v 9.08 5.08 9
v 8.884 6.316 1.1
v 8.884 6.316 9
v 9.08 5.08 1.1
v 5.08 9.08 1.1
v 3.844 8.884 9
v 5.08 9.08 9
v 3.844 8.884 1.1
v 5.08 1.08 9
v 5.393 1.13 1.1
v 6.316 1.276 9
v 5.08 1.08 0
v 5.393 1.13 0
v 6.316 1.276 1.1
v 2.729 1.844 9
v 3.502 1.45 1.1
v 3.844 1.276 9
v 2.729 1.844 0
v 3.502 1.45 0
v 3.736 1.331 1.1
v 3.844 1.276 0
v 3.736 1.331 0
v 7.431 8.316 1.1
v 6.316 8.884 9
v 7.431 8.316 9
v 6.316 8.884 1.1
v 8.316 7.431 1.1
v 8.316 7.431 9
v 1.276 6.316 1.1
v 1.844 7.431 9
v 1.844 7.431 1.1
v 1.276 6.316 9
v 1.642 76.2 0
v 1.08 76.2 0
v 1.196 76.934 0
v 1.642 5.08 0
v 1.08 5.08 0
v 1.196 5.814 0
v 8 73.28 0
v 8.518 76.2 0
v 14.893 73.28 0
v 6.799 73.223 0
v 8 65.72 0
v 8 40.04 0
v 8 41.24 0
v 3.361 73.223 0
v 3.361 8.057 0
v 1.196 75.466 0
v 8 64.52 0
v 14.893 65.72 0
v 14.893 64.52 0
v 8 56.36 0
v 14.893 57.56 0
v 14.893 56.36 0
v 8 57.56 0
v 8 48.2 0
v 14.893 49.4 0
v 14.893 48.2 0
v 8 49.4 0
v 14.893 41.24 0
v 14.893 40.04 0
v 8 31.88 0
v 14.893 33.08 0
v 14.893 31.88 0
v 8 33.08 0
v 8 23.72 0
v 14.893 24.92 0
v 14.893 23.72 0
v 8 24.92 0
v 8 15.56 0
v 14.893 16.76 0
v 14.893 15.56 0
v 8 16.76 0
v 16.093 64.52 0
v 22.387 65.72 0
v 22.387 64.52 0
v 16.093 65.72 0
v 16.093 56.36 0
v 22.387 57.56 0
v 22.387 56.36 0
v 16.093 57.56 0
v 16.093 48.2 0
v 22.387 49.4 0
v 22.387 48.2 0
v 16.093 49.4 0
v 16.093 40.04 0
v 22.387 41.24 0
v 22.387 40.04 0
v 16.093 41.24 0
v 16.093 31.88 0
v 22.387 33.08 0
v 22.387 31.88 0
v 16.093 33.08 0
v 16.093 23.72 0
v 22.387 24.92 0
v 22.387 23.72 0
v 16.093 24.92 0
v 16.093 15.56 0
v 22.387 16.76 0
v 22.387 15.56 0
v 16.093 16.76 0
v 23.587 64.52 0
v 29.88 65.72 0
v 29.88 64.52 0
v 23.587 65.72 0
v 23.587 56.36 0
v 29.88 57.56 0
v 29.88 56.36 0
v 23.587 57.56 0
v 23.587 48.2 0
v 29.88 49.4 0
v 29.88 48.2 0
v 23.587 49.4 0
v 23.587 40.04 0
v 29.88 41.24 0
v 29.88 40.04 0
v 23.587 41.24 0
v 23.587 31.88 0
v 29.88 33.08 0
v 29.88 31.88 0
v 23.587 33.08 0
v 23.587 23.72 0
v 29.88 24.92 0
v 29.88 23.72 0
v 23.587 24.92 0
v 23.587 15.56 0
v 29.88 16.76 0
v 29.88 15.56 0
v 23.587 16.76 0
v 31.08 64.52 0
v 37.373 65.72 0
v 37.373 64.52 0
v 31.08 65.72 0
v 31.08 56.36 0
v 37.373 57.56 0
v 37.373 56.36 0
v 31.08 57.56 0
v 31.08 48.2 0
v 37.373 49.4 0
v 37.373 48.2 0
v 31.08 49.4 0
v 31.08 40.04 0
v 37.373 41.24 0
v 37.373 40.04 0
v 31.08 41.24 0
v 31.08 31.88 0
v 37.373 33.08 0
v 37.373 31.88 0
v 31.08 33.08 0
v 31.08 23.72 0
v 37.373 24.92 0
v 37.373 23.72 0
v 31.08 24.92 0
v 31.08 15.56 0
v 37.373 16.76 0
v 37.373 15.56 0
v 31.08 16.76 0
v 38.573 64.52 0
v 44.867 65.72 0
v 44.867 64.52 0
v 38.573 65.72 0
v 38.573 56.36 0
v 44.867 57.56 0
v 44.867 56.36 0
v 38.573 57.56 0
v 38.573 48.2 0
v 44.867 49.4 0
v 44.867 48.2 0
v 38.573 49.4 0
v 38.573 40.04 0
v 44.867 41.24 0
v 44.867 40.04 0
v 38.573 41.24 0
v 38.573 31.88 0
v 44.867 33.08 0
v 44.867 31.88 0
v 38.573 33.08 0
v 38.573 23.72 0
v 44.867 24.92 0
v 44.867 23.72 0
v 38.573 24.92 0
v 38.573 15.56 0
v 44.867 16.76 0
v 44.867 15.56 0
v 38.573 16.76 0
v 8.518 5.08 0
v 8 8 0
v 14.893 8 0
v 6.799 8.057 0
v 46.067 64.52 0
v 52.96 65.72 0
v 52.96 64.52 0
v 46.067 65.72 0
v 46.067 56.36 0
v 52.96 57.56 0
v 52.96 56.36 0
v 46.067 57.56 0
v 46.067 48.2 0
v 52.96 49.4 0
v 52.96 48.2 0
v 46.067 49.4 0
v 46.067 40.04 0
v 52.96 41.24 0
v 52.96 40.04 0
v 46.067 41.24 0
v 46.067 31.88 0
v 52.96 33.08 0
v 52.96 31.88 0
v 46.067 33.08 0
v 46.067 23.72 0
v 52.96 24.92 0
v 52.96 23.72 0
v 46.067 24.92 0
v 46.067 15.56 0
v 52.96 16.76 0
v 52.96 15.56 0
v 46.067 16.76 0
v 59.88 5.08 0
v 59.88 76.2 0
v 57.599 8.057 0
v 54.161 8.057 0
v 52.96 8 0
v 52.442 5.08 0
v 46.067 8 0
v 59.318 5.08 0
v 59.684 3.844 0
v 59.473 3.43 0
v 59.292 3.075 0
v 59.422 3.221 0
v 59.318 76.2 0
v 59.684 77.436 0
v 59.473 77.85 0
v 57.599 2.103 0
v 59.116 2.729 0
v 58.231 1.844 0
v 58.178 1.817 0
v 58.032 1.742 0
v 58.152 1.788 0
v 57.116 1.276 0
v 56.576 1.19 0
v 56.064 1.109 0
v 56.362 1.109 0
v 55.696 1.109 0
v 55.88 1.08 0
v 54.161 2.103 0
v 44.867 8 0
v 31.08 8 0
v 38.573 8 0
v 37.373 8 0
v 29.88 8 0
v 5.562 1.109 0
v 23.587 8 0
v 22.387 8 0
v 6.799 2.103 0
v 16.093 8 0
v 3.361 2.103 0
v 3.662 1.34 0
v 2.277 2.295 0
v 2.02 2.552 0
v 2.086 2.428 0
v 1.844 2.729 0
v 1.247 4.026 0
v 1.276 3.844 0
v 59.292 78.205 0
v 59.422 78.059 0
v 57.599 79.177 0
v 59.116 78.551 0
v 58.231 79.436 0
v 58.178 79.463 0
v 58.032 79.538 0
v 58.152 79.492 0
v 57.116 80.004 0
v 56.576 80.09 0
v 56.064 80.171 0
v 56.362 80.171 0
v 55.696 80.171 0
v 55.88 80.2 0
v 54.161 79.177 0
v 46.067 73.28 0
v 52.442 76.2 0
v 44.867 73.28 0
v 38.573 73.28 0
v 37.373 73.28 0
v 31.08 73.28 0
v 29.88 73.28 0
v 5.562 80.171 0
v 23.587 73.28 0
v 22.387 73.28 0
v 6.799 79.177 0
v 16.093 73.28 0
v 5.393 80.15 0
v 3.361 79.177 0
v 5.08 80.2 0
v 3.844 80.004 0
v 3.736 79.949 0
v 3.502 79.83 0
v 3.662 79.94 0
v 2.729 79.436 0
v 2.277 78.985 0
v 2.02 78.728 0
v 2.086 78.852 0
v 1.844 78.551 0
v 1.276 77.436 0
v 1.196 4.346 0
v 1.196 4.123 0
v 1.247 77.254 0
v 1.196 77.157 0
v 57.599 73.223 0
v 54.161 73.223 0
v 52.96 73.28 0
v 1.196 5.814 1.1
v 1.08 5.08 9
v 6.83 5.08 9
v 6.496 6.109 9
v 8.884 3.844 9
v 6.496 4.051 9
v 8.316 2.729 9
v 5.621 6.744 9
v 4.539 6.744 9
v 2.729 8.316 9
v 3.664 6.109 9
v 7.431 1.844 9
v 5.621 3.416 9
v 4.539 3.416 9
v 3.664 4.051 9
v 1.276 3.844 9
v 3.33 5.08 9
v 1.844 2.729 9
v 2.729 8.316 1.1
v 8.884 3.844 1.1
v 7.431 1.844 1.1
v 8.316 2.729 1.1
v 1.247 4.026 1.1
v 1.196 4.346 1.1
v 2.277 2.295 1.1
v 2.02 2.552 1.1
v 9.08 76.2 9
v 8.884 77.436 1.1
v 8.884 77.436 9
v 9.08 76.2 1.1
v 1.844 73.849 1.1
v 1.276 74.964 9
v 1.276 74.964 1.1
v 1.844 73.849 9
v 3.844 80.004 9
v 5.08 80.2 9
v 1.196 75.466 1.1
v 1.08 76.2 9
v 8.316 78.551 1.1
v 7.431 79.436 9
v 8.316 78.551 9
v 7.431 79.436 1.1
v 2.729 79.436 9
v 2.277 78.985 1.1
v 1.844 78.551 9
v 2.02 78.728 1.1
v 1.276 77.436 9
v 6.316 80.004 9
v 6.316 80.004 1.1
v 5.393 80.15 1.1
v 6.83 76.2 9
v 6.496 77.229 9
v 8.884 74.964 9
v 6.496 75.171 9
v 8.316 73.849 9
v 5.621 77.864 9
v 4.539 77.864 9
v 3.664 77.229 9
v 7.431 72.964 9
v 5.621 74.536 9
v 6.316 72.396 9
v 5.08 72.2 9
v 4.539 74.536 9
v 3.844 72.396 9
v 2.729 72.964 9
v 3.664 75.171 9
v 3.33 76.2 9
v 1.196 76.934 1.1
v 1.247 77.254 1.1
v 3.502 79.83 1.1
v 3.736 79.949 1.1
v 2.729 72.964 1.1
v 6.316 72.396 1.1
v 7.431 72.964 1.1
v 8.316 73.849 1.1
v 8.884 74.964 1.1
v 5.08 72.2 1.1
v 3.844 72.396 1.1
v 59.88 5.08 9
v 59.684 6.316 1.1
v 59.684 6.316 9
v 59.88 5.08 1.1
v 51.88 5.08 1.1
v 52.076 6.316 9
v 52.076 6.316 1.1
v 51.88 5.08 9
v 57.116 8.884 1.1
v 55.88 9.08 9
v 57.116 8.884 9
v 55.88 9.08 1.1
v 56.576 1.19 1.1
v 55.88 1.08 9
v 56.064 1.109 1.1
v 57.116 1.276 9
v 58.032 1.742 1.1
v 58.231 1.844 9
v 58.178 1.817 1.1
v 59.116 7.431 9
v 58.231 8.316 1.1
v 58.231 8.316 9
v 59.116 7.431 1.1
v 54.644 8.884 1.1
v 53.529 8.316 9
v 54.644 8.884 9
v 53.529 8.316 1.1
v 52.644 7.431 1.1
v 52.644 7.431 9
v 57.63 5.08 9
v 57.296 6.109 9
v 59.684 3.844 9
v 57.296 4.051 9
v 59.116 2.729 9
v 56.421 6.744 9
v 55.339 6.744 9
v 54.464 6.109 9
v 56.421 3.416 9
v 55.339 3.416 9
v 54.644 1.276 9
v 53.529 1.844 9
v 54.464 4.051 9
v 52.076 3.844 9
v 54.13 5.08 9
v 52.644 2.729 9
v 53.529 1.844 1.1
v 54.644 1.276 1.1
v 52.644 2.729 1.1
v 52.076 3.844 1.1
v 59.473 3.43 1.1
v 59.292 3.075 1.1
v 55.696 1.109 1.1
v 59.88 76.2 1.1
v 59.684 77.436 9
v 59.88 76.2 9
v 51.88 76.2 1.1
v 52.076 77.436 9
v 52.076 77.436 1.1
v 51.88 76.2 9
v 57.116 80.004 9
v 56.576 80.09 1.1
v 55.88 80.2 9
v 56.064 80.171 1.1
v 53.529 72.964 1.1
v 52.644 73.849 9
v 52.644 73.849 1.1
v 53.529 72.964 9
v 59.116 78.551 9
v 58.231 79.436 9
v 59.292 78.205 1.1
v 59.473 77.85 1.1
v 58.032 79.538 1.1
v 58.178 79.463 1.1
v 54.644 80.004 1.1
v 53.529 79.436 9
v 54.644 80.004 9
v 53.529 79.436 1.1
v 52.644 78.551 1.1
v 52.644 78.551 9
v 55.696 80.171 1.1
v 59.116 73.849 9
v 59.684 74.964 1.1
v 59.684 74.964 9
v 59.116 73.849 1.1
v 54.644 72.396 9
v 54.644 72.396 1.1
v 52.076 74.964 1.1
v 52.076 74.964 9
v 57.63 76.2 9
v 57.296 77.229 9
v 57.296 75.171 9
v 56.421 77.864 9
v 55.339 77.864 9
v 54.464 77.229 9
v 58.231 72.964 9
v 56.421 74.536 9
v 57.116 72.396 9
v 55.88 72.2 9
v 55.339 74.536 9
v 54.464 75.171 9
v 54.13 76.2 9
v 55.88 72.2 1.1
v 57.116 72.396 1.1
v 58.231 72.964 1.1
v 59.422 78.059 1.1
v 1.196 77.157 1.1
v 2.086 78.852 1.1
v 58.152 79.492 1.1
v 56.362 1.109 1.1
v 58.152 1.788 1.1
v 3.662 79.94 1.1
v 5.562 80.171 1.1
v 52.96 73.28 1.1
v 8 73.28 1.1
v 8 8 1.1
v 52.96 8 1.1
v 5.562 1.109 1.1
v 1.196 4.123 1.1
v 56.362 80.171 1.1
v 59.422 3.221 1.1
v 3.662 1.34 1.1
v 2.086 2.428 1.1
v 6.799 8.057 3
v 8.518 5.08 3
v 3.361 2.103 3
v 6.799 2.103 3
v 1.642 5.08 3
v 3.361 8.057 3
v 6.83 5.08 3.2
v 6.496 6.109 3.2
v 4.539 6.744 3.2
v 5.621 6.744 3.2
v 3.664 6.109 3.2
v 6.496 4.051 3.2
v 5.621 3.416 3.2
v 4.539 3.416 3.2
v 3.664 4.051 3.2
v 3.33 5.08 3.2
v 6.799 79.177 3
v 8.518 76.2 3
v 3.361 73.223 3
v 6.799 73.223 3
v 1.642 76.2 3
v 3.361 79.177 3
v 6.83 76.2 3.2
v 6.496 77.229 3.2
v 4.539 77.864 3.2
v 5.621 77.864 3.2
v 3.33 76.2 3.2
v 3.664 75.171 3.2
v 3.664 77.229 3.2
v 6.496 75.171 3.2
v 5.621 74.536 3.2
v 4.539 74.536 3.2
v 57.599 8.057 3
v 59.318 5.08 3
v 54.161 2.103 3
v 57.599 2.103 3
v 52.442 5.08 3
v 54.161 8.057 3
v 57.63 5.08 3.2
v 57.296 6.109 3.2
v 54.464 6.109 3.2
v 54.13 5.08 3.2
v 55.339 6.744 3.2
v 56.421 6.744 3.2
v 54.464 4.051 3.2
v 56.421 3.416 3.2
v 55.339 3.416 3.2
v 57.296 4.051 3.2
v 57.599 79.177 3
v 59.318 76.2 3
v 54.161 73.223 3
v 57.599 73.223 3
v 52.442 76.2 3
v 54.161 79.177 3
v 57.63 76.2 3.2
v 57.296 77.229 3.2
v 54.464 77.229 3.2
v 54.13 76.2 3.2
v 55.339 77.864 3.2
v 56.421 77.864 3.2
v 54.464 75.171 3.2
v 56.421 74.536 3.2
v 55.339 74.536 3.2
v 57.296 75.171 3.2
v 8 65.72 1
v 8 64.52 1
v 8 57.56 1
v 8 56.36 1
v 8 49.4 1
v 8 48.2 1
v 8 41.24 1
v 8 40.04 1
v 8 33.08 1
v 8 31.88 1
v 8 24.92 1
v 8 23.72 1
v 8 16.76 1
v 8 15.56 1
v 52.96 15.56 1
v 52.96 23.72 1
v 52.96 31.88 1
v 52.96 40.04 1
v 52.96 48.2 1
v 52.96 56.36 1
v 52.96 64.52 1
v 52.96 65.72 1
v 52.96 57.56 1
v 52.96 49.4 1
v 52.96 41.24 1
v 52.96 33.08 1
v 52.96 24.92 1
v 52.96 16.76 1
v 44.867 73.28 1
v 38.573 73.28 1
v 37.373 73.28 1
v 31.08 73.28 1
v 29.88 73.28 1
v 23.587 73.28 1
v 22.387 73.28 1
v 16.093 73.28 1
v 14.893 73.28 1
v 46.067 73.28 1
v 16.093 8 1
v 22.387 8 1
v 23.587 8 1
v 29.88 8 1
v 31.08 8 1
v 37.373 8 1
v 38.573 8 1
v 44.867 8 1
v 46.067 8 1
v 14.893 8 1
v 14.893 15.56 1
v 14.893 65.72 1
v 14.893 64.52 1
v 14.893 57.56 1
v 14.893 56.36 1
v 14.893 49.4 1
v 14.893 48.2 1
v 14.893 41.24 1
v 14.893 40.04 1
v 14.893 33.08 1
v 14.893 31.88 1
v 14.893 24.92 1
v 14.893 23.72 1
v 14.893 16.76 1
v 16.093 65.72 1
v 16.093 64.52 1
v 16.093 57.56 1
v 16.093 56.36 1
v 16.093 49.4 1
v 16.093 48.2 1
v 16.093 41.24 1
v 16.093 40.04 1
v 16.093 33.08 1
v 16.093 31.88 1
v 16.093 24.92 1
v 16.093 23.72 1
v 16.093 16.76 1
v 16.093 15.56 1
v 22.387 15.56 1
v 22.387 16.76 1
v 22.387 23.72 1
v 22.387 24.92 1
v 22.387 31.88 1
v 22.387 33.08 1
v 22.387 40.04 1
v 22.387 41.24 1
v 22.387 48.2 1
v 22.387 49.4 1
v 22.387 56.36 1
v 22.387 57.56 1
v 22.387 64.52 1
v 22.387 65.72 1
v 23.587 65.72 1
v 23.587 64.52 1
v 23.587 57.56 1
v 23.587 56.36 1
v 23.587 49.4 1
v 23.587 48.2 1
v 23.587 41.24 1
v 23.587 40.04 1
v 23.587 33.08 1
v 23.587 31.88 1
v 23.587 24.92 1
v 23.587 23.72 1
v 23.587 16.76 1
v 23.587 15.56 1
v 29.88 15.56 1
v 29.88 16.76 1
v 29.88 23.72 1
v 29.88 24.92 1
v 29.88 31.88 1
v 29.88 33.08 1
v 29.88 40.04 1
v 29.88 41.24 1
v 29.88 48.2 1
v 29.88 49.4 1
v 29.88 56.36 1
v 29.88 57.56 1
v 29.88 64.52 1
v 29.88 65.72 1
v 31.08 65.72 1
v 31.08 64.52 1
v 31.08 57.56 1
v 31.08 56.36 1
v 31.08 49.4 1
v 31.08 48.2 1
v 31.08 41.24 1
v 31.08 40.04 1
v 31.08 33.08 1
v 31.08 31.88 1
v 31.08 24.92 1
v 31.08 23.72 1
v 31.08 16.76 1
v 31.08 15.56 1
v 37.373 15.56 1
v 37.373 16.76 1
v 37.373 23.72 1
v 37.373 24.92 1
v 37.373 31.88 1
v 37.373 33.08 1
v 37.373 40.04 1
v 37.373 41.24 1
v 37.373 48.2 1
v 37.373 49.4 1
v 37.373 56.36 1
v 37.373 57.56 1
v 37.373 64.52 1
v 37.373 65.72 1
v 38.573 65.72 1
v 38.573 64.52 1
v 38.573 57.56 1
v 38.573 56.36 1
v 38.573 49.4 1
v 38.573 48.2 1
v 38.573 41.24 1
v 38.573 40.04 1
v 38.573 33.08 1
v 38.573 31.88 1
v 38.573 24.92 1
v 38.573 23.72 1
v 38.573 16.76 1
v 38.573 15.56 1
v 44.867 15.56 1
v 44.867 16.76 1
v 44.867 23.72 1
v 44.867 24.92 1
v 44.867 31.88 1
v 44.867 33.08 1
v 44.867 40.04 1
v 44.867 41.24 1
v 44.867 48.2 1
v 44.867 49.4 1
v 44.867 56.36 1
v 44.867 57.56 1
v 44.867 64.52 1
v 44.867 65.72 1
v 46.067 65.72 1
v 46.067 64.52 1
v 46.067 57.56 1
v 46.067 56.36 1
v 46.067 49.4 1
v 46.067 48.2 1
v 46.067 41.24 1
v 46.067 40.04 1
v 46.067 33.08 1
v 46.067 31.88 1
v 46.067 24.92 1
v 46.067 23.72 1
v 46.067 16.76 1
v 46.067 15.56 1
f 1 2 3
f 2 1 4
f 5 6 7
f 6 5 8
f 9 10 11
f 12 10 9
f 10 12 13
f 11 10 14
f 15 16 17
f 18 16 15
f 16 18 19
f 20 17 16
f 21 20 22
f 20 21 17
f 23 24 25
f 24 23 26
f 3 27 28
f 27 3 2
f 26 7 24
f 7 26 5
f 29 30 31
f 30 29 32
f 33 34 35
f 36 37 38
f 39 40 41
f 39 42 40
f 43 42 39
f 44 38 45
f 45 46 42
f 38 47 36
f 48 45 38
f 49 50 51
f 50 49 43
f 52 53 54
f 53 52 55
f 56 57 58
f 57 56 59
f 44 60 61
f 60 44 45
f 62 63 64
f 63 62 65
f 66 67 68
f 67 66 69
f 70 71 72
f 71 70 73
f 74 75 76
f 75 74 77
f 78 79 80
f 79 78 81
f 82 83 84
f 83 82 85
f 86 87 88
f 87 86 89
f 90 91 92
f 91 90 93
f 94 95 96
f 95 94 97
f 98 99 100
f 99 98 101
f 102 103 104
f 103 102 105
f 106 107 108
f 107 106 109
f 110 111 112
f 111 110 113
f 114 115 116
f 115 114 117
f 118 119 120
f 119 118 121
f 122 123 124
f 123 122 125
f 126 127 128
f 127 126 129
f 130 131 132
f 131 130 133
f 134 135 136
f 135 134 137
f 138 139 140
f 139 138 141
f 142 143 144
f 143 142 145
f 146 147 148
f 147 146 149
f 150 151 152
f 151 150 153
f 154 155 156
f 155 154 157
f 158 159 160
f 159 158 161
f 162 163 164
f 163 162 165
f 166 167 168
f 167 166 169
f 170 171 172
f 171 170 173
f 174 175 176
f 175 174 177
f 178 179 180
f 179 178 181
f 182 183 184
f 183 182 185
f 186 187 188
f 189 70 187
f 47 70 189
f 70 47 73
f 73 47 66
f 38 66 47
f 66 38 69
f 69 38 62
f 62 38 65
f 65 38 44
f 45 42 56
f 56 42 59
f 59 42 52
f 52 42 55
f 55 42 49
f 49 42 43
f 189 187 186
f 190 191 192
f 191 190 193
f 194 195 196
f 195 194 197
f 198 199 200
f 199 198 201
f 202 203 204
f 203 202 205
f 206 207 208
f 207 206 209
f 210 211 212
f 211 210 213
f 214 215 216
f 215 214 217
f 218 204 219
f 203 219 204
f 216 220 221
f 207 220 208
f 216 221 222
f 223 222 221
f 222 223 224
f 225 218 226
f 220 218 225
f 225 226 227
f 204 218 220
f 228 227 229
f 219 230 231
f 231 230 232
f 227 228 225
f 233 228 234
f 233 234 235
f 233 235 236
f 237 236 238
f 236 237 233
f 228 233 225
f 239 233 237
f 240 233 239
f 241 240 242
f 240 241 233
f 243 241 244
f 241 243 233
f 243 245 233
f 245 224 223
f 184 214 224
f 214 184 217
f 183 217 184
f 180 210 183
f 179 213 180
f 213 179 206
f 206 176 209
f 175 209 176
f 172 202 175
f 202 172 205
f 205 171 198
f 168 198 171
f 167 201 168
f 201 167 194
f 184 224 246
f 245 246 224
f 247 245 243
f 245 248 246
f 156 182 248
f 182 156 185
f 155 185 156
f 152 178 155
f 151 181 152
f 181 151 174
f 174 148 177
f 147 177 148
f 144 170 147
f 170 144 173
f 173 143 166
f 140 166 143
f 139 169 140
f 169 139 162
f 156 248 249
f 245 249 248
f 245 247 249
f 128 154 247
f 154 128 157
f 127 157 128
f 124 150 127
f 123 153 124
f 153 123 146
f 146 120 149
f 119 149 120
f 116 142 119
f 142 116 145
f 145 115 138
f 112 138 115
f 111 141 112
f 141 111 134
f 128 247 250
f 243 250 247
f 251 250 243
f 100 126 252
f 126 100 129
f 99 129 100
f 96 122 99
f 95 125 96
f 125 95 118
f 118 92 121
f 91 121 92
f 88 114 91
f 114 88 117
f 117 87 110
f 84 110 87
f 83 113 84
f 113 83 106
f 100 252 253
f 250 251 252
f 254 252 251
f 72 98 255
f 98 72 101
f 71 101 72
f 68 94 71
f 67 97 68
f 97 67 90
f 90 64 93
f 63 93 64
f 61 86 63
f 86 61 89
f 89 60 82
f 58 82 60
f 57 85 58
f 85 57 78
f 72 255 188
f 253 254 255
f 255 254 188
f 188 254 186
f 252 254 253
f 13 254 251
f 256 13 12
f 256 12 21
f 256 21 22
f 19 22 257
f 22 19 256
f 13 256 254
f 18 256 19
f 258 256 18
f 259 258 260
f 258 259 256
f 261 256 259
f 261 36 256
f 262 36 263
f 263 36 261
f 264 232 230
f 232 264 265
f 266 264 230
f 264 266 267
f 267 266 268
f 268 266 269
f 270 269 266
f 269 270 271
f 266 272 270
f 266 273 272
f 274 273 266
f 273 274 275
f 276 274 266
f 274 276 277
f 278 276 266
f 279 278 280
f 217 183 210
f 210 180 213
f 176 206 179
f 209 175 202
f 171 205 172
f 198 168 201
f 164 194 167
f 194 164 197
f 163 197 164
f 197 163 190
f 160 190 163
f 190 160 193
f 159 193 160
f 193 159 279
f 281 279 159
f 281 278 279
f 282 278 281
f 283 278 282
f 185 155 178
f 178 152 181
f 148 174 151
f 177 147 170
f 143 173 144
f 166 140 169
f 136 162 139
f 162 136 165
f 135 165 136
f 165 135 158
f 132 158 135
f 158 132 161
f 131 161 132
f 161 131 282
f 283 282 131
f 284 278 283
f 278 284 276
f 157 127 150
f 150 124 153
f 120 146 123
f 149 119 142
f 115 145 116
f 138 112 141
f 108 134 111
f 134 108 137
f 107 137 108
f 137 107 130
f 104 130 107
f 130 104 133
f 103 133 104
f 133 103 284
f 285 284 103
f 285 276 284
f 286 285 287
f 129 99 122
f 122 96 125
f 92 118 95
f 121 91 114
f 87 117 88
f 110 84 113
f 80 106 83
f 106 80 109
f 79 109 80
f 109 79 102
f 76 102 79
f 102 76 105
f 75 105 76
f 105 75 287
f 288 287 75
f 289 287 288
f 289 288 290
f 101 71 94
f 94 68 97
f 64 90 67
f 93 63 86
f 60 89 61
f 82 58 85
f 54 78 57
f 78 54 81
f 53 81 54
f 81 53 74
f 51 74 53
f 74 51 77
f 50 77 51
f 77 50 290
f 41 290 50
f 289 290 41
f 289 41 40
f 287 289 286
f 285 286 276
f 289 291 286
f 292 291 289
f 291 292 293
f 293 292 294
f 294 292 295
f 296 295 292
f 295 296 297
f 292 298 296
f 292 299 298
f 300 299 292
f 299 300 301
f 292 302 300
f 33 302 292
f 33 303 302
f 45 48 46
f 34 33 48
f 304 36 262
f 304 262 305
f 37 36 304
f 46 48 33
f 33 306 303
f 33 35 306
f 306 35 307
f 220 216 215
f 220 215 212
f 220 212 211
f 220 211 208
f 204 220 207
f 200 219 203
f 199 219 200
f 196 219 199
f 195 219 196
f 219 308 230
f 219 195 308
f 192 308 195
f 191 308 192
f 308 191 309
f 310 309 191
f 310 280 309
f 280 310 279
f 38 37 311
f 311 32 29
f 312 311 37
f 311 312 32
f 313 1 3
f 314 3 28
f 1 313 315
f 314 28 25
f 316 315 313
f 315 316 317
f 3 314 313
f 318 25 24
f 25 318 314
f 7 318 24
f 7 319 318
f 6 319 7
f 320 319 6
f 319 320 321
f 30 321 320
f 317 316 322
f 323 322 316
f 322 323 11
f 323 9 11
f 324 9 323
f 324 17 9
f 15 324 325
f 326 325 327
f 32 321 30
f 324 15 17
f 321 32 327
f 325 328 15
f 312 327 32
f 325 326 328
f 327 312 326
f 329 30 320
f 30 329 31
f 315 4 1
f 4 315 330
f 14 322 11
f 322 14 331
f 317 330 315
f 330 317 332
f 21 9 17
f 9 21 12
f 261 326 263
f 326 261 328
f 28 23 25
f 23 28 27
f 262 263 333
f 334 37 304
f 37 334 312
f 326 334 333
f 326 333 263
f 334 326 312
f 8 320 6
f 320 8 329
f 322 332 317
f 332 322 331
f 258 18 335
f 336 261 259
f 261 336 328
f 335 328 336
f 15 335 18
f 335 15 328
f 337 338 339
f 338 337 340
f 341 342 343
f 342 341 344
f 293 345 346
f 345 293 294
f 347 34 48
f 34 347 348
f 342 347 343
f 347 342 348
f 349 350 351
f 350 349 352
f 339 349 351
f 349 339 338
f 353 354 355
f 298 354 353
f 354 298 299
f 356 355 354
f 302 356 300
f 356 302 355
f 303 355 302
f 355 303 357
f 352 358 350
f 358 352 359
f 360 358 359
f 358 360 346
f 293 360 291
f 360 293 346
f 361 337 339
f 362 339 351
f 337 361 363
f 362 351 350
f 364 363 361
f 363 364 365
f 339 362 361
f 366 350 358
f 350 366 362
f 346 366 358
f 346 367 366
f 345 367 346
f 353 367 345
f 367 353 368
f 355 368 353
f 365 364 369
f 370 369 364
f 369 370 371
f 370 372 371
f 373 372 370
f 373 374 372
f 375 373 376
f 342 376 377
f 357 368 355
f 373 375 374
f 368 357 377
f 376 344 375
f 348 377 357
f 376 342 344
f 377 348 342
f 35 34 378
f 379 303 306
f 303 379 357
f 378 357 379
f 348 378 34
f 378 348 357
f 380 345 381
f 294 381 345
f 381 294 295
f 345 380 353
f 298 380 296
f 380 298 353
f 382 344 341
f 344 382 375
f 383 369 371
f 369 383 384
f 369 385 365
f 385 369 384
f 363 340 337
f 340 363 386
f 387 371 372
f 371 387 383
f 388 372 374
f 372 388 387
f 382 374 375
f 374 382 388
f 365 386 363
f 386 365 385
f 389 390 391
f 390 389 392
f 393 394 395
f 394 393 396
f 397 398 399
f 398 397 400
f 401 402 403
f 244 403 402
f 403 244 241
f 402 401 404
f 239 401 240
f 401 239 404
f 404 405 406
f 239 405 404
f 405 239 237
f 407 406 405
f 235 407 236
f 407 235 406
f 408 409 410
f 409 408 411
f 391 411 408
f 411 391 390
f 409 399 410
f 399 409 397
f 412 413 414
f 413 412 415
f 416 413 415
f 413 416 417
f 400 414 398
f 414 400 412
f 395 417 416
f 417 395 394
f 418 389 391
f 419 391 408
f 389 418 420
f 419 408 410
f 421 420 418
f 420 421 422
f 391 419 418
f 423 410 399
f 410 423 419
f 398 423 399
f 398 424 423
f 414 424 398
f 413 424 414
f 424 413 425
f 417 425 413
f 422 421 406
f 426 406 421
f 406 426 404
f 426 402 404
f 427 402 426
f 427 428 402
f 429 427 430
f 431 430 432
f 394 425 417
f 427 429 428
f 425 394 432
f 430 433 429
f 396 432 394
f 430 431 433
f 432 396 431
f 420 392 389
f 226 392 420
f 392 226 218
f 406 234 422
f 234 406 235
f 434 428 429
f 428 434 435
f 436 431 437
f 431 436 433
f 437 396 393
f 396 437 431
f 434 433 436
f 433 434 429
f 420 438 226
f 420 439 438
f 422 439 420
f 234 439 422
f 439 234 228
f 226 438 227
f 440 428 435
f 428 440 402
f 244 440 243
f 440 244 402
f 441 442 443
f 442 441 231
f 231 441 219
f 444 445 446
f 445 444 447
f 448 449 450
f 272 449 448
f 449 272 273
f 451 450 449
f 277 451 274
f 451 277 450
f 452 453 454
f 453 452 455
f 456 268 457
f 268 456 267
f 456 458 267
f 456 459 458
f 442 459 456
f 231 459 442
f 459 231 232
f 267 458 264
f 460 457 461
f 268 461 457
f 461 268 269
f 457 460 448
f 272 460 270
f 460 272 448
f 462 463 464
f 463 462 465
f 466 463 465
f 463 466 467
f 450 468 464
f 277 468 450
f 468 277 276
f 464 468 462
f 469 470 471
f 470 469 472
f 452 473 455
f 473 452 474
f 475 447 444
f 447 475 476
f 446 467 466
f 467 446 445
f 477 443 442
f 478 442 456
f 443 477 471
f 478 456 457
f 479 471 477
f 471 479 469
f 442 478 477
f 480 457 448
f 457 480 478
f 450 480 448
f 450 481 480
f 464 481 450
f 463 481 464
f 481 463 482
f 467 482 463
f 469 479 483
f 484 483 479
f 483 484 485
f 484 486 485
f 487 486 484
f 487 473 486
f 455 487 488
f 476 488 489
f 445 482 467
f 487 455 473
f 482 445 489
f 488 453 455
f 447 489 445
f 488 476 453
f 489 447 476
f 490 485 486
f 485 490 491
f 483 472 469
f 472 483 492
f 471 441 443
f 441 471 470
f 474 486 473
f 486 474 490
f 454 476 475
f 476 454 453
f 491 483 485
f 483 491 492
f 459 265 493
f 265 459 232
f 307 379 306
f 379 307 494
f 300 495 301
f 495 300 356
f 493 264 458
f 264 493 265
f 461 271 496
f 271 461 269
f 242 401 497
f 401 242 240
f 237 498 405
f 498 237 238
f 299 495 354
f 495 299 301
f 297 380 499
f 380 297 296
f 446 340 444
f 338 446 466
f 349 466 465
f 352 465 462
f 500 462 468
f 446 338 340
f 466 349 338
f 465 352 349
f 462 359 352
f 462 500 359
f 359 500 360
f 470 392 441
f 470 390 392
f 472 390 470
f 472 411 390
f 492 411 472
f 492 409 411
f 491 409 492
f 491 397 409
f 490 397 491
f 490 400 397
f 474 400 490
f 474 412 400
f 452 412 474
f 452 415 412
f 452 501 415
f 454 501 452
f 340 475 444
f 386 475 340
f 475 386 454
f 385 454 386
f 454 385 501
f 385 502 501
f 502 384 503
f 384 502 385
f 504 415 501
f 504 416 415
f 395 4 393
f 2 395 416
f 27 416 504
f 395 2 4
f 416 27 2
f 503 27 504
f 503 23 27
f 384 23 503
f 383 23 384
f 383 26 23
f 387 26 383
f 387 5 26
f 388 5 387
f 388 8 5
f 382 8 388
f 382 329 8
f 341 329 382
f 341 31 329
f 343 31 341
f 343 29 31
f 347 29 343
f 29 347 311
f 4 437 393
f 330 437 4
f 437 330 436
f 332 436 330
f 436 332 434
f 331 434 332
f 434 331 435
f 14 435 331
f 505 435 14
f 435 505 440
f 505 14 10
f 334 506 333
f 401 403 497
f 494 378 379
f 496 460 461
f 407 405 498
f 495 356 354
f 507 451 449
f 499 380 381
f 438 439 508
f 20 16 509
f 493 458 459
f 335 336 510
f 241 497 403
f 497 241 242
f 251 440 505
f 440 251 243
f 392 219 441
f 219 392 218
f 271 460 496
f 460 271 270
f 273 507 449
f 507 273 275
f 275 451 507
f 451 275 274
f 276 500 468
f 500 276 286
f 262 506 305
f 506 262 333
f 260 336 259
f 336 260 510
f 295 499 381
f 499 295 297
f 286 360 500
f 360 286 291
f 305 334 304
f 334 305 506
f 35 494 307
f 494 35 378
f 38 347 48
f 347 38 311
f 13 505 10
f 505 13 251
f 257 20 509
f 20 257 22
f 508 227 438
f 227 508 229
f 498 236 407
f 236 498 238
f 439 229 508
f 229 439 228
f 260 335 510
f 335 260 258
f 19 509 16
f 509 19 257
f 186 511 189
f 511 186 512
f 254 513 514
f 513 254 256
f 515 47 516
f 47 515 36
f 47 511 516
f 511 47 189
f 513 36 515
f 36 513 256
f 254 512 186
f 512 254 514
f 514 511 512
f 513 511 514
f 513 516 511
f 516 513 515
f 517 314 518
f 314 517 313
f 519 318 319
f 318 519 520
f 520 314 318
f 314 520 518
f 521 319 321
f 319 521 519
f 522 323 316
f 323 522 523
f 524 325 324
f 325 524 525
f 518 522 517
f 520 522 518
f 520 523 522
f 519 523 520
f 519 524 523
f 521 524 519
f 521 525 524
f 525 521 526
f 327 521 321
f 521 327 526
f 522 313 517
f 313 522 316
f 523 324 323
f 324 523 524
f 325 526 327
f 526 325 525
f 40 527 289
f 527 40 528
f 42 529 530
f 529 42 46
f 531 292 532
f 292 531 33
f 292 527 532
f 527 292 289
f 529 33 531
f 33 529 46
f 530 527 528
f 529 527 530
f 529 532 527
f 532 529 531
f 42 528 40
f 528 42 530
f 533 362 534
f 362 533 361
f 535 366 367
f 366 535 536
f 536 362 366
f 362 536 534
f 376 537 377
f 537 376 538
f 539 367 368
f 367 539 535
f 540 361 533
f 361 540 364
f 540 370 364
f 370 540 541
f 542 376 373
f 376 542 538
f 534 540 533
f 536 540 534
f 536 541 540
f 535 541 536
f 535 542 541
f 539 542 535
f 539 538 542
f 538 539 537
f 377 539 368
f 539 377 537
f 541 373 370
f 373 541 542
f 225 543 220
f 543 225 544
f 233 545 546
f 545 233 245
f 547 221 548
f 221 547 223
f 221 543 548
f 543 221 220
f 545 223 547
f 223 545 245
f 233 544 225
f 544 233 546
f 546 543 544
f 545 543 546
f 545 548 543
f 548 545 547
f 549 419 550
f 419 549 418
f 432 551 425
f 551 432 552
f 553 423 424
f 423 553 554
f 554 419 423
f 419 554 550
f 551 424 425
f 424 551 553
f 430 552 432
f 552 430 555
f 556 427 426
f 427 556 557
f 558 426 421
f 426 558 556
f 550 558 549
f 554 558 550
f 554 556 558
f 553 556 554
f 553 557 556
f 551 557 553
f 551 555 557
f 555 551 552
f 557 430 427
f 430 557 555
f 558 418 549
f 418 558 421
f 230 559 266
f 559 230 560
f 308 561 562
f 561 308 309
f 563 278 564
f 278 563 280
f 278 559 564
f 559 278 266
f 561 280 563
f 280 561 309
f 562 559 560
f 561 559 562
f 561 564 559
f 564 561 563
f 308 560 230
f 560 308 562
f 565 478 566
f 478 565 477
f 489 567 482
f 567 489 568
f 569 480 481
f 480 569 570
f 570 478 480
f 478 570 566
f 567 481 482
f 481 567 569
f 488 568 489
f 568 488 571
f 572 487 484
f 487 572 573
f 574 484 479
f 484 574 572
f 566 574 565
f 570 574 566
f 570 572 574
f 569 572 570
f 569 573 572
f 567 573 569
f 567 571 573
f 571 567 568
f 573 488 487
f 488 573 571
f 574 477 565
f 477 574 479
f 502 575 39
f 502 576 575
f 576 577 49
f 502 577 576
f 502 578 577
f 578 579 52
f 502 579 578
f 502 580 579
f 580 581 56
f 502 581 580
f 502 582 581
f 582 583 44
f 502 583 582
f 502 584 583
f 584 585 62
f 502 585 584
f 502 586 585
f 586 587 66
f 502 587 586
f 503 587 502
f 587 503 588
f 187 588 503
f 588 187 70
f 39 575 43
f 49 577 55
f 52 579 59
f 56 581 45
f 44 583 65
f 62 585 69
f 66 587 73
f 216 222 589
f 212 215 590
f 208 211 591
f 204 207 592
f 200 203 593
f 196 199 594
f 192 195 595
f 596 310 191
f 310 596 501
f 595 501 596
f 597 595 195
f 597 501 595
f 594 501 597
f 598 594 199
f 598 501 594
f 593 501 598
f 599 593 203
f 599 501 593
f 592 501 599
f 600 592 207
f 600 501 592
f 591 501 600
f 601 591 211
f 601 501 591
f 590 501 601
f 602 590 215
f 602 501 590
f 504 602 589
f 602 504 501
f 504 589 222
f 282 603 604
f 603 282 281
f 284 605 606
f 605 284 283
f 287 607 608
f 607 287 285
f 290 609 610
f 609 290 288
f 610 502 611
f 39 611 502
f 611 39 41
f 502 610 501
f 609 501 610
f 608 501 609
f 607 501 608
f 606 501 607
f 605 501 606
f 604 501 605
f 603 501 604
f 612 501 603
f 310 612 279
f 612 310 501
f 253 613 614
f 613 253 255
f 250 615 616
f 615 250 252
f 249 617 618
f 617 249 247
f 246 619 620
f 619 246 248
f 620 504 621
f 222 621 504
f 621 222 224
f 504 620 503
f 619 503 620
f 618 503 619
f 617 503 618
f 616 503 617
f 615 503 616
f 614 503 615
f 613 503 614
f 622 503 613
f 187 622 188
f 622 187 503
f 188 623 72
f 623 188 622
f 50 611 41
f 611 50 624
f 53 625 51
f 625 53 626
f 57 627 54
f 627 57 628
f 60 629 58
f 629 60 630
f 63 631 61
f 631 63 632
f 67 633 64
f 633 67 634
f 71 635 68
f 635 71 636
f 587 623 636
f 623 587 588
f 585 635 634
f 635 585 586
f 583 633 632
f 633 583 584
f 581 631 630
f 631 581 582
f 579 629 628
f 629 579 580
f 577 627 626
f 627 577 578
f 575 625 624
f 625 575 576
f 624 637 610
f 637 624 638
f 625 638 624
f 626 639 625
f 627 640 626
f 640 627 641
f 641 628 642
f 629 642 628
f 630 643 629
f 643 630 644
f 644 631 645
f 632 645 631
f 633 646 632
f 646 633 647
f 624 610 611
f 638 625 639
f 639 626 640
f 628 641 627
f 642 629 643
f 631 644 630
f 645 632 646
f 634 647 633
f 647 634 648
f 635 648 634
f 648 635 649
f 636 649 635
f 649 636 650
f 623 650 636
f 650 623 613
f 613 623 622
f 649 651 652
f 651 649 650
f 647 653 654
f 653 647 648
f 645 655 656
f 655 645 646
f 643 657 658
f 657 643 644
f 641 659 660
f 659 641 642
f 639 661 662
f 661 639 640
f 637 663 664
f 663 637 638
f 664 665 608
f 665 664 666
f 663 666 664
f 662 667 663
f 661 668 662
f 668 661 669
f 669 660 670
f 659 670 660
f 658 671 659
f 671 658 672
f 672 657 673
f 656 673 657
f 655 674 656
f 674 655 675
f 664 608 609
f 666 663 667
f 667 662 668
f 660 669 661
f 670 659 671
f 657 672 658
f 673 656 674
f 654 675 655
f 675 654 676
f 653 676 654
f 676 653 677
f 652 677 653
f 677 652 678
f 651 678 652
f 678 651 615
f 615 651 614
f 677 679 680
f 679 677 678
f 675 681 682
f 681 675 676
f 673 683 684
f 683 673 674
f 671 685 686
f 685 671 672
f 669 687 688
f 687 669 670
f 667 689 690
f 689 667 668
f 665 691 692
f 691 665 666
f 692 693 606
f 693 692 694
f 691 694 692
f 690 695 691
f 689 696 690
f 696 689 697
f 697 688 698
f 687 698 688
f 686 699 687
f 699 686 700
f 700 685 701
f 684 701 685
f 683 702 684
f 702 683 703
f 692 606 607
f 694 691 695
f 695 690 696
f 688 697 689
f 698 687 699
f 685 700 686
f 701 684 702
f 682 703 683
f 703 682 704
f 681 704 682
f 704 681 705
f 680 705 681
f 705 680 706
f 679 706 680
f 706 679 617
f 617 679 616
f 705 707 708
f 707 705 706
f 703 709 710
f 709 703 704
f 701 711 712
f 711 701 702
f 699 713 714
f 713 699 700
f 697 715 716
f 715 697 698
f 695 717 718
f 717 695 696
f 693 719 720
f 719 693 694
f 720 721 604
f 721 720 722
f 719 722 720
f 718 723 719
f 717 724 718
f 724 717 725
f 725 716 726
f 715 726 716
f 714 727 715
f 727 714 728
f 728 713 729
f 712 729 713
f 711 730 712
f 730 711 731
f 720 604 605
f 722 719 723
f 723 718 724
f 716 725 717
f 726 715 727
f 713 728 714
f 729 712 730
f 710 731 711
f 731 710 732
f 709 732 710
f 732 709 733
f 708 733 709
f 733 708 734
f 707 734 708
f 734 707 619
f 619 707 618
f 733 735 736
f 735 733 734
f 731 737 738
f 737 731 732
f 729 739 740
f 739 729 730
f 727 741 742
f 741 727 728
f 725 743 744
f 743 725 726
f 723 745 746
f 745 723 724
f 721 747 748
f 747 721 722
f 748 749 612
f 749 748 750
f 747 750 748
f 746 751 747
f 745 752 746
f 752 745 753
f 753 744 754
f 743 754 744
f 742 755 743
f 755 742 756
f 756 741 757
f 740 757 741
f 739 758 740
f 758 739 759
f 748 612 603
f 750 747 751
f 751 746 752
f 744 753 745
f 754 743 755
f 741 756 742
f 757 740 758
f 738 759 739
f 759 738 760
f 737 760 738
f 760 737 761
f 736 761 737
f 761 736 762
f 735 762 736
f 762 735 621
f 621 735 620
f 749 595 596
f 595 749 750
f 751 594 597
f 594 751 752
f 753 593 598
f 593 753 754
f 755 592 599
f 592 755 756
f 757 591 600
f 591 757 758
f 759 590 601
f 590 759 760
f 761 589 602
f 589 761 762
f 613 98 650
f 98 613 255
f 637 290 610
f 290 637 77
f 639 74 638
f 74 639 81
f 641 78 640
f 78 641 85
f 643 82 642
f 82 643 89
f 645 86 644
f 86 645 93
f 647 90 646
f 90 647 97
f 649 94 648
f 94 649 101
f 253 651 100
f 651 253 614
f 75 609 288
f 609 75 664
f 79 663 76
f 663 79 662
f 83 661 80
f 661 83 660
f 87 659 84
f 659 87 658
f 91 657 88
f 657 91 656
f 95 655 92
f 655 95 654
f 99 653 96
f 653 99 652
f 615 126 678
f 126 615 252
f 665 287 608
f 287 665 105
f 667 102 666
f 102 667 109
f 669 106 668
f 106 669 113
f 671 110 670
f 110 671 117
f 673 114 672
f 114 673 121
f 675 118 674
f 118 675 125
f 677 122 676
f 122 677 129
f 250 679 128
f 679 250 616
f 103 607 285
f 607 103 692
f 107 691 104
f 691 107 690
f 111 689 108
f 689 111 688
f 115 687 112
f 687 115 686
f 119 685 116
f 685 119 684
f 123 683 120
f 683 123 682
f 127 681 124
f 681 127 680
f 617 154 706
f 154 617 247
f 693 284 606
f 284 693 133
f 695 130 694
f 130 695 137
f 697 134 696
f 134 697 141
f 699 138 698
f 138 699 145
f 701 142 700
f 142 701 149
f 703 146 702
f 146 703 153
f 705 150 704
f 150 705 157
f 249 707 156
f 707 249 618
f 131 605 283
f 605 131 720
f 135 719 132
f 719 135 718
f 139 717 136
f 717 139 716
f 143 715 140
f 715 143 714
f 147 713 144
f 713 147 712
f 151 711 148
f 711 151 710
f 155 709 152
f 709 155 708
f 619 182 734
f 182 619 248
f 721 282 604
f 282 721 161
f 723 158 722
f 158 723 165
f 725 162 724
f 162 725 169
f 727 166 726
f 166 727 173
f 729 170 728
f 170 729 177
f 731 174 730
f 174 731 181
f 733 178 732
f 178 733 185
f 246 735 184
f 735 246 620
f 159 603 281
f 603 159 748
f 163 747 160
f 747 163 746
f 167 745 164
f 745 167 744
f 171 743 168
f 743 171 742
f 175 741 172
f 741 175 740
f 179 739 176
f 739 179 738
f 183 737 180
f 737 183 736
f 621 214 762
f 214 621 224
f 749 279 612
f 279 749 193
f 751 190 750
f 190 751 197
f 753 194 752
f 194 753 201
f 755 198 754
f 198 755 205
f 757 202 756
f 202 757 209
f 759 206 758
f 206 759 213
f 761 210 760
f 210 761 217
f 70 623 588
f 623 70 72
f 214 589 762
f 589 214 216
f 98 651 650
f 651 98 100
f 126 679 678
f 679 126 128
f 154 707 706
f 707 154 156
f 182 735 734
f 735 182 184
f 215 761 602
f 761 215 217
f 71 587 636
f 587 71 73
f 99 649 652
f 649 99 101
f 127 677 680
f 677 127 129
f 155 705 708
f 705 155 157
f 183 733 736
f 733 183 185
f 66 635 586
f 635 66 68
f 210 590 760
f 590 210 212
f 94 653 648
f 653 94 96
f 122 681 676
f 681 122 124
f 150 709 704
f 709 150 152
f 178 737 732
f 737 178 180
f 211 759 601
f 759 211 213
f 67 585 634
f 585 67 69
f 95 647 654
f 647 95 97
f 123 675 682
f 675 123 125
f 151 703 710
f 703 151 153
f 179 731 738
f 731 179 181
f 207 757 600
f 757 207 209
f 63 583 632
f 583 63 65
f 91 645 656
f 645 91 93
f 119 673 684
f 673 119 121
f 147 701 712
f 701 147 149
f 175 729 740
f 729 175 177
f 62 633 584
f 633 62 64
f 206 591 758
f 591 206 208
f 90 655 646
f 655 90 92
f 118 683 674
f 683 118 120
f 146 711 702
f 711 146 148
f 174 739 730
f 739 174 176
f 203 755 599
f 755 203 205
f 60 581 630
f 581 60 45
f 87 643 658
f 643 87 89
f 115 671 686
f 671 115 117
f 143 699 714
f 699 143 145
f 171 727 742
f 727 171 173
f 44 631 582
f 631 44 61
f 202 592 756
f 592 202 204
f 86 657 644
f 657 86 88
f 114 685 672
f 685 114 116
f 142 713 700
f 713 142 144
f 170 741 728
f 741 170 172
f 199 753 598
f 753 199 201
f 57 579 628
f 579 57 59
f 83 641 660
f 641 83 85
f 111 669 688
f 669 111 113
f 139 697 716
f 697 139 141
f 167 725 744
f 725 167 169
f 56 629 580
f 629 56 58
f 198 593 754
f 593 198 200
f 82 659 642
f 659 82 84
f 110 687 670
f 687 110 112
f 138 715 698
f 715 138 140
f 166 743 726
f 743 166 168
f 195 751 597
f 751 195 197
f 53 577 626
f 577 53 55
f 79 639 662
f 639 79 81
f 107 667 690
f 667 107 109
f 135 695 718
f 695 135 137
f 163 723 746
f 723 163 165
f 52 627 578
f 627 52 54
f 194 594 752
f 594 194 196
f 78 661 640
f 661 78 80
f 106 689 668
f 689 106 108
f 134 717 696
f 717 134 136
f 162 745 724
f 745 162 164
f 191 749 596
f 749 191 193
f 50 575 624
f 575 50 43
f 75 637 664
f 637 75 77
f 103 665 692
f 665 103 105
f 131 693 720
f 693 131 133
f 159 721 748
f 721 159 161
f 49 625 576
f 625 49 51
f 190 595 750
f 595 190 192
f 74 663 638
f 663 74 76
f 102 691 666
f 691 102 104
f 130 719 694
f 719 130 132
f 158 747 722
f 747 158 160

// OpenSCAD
x_holes = 6;
y_holes = 8;
pedestal_height = 9;   // designed for use the MLAB standard 20mm screws.

MLAB_grid = 10.16;
thickness = 1;          // thickness of bottom belt
pile_radius = 4;        // radius of pile around screw
x_size = x_holes * MLAB_grid ;
y_size = y_holes * MLAB_grid ;
mount_hole = 3.5;
//nut_size = 6.8;  //size suitable for PLA material
nut_size = 6.7;  //size suitable for ABS material
clear = 0.175;





MLAB_grid_xoffset = MLAB_grid/2;
MLAB_grid_yoffset = MLAB_grid/2;

grid_list = [for (j = [MLAB_grid_xoffset : MLAB_grid: x_size], i = [MLAB_grid_yoffset :MLAB_grid: y_size]) 
if ((j>(x_size-10) && i>(y_size-10)) || (j<10 && i<10) || (j<10 && i>(y_size-10)) || (j>(x_size-10) && i<10) ) [j, i] ];


//------------parameters---------------------------

nY = 8;
nX = 6;


meshX=x_size-4*pile_radius;
meshY=y_size-4*pile_radius;

// width of solid part of grid
meshSolid=1.2;
// width of blank part of grid 
//meshSpaceX=(y_size-4*pile_radius)/8;  
//meshSpaceY=(y_size-4*pile_radius)/8;  
// thickness in Z direction


//-------------------------------------------------
//nX=meshX/(meshSolid+meshSpaceX);
//nY=meshY/(meshSolid+meshSpaceY);

meshSpaceX = (meshX - meshSolid*nX)/nX;
meshSpaceY = (meshY - meshSolid*nY)/nY;


difference () {
    union () {
        for (j = grid_list) {
            translate (concat(j, [0]))
            cylinder (h = pedestal_height, r= pile_radius, $fn=20);
        }

            translate ([MLAB_grid_xoffset , MLAB_grid_yoffset , 0])
                minkowski() {
                cube([x_size - 2*(MLAB_grid/2 - pile_radius) - 2*pile_radius, y_size - 2*(MLAB_grid/2 - pile_radius) - 2*pile_radius, thickness]);          // base plastics brick
                cylinder(r=pile_radius,h=0.1);
            }
    }
    
    translate ([2*pile_radius, 2*pile_radius, 0]) // central hole in module support
        cube([x_size-4*pile_radius, y_size-4*pile_radius, 2*thickness]);          

    // MLAB grid holes
    for (j = grid_list) {
            translate (concat(j, [0]))
            cylinder (h = 3, r= (nut_size+clear)/2, $fn=6);
            translate (concat(j, [3.2]))  // one solid layer for slicer (the holes will be pierced on demand )
            cylinder (h = pedestal_height, r= mount_hole/2, $fn=10);
    }    


}

translate ([2*pile_radius, 2*pile_radius, 0]) // central hole in module support
    union()
    {
        for (i=[1:nX-1]) {
                 translate([i*(meshSolid+meshSpaceX) - meshSolid/2,0,0]) cube(size=[meshSolid, meshY, thickness],center=false);
        }

        for (i=[1:nY-1]) {
                translate([0,i*(meshSolid+meshSpaceY) - meshSolid/2,0]) cube(size=[meshX, meshSolid, thickness],center=false);

        }
    }
